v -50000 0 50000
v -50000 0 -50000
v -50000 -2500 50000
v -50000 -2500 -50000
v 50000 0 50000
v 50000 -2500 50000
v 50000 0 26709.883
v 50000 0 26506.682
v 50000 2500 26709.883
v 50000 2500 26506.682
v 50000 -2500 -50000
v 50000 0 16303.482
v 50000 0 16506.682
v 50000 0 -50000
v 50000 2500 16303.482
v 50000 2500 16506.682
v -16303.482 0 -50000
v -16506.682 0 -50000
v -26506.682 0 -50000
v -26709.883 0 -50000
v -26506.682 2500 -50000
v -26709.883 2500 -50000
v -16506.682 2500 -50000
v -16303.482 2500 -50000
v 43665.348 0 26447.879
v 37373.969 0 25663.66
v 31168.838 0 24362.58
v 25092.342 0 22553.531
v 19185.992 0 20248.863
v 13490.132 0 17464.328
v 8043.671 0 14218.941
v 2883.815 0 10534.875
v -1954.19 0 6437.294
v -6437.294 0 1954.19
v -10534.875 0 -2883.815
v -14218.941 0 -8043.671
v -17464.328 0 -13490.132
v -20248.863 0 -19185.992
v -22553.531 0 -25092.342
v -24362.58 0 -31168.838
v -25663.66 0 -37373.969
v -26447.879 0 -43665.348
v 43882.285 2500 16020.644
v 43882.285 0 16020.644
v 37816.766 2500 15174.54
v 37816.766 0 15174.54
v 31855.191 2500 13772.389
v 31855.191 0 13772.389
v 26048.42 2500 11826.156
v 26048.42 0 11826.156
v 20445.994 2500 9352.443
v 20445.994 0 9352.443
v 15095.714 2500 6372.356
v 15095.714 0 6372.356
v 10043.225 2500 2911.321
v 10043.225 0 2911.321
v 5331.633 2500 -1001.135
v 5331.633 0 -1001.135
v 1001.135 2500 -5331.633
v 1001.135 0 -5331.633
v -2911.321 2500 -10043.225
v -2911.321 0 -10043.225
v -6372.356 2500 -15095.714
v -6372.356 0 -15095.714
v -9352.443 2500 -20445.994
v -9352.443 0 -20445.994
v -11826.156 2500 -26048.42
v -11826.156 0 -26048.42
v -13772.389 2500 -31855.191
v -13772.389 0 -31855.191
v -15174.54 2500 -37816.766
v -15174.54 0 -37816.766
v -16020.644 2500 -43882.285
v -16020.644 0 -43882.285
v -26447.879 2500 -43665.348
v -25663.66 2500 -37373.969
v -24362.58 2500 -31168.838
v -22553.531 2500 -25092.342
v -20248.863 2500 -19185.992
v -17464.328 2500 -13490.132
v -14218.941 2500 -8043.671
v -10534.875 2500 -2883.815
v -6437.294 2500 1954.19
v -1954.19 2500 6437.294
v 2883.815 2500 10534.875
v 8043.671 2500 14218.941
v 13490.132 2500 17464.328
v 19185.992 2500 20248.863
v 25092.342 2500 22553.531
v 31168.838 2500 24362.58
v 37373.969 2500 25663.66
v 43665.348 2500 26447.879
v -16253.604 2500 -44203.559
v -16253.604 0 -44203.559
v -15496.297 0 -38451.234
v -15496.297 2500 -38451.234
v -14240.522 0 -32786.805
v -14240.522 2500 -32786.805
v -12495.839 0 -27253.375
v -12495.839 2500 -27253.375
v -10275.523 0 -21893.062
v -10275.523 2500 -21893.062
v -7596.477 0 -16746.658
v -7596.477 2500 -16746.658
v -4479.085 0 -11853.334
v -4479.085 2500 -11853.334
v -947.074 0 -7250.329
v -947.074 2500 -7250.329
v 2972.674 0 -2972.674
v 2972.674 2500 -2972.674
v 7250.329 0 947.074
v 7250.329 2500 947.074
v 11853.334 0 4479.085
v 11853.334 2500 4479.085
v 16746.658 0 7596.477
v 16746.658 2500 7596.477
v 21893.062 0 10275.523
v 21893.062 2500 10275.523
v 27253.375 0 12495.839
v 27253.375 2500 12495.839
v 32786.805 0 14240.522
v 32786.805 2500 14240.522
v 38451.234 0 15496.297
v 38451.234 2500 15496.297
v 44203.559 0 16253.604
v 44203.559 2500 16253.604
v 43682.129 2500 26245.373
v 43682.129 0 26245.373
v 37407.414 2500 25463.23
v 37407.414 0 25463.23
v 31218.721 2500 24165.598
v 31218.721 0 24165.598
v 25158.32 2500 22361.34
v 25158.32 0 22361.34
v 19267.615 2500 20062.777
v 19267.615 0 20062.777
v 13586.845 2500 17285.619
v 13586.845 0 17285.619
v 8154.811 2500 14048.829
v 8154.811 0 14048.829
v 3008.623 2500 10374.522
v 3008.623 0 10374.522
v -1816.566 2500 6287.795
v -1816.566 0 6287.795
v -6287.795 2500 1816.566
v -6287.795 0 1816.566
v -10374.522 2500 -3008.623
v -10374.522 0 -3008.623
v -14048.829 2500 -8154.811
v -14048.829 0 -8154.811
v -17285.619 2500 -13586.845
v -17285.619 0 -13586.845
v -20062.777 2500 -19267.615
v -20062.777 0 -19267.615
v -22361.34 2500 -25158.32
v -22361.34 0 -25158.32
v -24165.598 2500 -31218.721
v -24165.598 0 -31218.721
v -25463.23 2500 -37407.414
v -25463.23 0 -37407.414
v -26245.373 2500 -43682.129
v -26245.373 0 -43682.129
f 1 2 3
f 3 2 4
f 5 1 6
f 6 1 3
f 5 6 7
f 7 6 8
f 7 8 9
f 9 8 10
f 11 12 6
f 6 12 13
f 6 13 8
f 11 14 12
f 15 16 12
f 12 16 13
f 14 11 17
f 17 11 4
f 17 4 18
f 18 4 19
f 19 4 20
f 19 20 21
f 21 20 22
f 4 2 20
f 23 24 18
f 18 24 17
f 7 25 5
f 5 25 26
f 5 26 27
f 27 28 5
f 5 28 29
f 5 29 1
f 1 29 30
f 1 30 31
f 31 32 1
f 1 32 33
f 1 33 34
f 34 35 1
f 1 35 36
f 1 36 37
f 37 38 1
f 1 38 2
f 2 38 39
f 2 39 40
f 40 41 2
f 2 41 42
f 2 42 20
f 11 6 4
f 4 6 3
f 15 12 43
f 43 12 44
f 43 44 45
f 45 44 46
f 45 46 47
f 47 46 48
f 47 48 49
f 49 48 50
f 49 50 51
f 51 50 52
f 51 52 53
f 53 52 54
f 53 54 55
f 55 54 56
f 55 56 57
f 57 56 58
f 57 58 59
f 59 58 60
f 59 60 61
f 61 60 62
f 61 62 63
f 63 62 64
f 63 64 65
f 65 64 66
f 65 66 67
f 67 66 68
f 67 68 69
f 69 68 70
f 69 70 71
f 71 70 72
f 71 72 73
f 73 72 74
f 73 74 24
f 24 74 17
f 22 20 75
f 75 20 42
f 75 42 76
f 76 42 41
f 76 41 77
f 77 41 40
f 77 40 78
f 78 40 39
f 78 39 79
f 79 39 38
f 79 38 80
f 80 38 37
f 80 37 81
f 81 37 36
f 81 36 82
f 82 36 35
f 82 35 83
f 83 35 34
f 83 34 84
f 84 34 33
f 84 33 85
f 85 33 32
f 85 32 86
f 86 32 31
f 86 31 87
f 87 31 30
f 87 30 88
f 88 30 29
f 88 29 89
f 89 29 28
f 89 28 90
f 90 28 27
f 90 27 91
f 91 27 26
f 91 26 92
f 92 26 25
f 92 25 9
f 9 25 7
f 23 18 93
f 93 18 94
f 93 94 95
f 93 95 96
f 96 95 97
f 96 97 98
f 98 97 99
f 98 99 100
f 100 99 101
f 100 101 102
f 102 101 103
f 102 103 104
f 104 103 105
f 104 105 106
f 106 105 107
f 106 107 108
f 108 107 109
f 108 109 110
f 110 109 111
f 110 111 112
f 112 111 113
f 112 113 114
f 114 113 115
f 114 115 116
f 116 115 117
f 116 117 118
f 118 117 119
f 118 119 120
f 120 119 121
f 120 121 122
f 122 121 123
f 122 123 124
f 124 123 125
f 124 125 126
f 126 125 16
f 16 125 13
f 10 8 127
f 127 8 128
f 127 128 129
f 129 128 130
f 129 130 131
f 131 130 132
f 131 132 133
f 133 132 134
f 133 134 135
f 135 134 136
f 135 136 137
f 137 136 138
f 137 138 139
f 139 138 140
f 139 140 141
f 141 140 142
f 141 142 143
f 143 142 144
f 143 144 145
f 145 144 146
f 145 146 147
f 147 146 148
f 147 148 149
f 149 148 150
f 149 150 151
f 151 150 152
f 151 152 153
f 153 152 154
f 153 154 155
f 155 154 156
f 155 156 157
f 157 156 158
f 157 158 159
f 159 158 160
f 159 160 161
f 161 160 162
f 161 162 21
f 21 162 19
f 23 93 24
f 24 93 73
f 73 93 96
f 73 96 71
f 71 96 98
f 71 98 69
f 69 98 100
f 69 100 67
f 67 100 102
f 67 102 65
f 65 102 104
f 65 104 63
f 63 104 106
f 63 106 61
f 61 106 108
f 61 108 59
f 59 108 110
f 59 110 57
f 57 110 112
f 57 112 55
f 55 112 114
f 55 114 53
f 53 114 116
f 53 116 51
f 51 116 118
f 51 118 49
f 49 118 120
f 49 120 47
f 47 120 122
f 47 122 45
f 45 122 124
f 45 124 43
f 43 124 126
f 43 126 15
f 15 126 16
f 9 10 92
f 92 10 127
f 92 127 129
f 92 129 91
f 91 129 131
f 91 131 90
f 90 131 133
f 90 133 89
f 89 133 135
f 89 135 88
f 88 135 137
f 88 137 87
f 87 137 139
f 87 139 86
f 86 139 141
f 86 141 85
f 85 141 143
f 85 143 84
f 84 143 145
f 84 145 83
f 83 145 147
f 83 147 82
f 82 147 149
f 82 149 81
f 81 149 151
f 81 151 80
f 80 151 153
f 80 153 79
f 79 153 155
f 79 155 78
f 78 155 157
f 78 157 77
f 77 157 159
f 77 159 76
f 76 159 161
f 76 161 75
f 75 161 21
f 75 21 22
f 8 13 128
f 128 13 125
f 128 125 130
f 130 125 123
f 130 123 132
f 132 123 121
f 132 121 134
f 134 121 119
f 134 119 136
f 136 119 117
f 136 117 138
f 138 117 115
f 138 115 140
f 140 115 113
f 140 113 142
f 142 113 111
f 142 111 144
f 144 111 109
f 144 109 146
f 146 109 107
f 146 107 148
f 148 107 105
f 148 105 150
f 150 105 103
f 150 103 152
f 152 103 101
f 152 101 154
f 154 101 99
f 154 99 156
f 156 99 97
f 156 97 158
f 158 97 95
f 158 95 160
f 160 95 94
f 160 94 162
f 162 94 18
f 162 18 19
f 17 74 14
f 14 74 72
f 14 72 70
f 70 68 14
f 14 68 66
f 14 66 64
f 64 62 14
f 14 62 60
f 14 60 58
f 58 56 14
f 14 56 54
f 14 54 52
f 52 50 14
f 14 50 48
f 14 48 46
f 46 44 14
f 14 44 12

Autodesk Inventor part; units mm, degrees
ref_plane "YZ Plane" through (0, 0, 0) normal (1, 0, 0) x (0, 1, 0)
ref_plane "XZ Plane" through (0, 0, 0) normal (0, 1, 0) x (-1, 0, 0)
ref_plane "XY Plane" through (0, 0, 0) normal (0, 0, 1) x (1, 0, 0)
sketch "Sketch1" plane through (0, 0, 0) normal (0, 1, 0) x (-1, 0, 0)
  line L0 (-50000, 50000) -> (50000, 50000)
  line L1 (50000, 50000) -> (50000, -50000)
  line L2 (50000, -50000) -> (-50000, -50000)
  line L3 (-50000, -50000) -> (-50000, 50000)
  line L4 (-50000, 50000) -> (50000, -50000) construction
  line L5 (50000, 50000) -> (-50000, -50000) construction
  point P0 (0, 0)
  dimension "d0" = 100000
  dimension "d1" = 100000
extrude "Extrusion1" add sketch "Sketch1" against normal blind 2500
sketch "Sketch2" plane through (0, 0, 0) normal (0, 1, 0) x (1, 0, 0)
  line L0 (-50000, 50000) -> (50000, 50000) projected
  line L1 (50000, 50000) -> (50000, -50000) projected
  arc A0 (0, 50000) -> (50000, 0) centre (50000, 50000) ccw construction
  arc A1 (-26506.6822, 50000) -> (50000, -26506.6822) centre (50000, 50000) ccw
  arc A2 (-16506.6822, 50000) -> (50000, -16506.6822) centre (50000, 50000) ccw
  arc A3 (-26709.8822, 50000) -> (50000, -26709.8822) centre (50000, 50000) ccw
  arc A4 (-16303.4822, 50000) -> (50000, -16303.4822) centre (50000, 50000) ccw
  point P0 (0, 0)
  point P1 (50000, -16303.4822)
  point P2 (50000, -26709.8822)
  dimension "d5" = 203.2
  dimension "d6" = 203.2
  dimension "d7" = 10000
extrude "Extrusion2" add sketch "Sketch2" along normal blind 2500 contours L0 A1 L1 A3 | L0 A4 L1 A2
properties part number "curve"
